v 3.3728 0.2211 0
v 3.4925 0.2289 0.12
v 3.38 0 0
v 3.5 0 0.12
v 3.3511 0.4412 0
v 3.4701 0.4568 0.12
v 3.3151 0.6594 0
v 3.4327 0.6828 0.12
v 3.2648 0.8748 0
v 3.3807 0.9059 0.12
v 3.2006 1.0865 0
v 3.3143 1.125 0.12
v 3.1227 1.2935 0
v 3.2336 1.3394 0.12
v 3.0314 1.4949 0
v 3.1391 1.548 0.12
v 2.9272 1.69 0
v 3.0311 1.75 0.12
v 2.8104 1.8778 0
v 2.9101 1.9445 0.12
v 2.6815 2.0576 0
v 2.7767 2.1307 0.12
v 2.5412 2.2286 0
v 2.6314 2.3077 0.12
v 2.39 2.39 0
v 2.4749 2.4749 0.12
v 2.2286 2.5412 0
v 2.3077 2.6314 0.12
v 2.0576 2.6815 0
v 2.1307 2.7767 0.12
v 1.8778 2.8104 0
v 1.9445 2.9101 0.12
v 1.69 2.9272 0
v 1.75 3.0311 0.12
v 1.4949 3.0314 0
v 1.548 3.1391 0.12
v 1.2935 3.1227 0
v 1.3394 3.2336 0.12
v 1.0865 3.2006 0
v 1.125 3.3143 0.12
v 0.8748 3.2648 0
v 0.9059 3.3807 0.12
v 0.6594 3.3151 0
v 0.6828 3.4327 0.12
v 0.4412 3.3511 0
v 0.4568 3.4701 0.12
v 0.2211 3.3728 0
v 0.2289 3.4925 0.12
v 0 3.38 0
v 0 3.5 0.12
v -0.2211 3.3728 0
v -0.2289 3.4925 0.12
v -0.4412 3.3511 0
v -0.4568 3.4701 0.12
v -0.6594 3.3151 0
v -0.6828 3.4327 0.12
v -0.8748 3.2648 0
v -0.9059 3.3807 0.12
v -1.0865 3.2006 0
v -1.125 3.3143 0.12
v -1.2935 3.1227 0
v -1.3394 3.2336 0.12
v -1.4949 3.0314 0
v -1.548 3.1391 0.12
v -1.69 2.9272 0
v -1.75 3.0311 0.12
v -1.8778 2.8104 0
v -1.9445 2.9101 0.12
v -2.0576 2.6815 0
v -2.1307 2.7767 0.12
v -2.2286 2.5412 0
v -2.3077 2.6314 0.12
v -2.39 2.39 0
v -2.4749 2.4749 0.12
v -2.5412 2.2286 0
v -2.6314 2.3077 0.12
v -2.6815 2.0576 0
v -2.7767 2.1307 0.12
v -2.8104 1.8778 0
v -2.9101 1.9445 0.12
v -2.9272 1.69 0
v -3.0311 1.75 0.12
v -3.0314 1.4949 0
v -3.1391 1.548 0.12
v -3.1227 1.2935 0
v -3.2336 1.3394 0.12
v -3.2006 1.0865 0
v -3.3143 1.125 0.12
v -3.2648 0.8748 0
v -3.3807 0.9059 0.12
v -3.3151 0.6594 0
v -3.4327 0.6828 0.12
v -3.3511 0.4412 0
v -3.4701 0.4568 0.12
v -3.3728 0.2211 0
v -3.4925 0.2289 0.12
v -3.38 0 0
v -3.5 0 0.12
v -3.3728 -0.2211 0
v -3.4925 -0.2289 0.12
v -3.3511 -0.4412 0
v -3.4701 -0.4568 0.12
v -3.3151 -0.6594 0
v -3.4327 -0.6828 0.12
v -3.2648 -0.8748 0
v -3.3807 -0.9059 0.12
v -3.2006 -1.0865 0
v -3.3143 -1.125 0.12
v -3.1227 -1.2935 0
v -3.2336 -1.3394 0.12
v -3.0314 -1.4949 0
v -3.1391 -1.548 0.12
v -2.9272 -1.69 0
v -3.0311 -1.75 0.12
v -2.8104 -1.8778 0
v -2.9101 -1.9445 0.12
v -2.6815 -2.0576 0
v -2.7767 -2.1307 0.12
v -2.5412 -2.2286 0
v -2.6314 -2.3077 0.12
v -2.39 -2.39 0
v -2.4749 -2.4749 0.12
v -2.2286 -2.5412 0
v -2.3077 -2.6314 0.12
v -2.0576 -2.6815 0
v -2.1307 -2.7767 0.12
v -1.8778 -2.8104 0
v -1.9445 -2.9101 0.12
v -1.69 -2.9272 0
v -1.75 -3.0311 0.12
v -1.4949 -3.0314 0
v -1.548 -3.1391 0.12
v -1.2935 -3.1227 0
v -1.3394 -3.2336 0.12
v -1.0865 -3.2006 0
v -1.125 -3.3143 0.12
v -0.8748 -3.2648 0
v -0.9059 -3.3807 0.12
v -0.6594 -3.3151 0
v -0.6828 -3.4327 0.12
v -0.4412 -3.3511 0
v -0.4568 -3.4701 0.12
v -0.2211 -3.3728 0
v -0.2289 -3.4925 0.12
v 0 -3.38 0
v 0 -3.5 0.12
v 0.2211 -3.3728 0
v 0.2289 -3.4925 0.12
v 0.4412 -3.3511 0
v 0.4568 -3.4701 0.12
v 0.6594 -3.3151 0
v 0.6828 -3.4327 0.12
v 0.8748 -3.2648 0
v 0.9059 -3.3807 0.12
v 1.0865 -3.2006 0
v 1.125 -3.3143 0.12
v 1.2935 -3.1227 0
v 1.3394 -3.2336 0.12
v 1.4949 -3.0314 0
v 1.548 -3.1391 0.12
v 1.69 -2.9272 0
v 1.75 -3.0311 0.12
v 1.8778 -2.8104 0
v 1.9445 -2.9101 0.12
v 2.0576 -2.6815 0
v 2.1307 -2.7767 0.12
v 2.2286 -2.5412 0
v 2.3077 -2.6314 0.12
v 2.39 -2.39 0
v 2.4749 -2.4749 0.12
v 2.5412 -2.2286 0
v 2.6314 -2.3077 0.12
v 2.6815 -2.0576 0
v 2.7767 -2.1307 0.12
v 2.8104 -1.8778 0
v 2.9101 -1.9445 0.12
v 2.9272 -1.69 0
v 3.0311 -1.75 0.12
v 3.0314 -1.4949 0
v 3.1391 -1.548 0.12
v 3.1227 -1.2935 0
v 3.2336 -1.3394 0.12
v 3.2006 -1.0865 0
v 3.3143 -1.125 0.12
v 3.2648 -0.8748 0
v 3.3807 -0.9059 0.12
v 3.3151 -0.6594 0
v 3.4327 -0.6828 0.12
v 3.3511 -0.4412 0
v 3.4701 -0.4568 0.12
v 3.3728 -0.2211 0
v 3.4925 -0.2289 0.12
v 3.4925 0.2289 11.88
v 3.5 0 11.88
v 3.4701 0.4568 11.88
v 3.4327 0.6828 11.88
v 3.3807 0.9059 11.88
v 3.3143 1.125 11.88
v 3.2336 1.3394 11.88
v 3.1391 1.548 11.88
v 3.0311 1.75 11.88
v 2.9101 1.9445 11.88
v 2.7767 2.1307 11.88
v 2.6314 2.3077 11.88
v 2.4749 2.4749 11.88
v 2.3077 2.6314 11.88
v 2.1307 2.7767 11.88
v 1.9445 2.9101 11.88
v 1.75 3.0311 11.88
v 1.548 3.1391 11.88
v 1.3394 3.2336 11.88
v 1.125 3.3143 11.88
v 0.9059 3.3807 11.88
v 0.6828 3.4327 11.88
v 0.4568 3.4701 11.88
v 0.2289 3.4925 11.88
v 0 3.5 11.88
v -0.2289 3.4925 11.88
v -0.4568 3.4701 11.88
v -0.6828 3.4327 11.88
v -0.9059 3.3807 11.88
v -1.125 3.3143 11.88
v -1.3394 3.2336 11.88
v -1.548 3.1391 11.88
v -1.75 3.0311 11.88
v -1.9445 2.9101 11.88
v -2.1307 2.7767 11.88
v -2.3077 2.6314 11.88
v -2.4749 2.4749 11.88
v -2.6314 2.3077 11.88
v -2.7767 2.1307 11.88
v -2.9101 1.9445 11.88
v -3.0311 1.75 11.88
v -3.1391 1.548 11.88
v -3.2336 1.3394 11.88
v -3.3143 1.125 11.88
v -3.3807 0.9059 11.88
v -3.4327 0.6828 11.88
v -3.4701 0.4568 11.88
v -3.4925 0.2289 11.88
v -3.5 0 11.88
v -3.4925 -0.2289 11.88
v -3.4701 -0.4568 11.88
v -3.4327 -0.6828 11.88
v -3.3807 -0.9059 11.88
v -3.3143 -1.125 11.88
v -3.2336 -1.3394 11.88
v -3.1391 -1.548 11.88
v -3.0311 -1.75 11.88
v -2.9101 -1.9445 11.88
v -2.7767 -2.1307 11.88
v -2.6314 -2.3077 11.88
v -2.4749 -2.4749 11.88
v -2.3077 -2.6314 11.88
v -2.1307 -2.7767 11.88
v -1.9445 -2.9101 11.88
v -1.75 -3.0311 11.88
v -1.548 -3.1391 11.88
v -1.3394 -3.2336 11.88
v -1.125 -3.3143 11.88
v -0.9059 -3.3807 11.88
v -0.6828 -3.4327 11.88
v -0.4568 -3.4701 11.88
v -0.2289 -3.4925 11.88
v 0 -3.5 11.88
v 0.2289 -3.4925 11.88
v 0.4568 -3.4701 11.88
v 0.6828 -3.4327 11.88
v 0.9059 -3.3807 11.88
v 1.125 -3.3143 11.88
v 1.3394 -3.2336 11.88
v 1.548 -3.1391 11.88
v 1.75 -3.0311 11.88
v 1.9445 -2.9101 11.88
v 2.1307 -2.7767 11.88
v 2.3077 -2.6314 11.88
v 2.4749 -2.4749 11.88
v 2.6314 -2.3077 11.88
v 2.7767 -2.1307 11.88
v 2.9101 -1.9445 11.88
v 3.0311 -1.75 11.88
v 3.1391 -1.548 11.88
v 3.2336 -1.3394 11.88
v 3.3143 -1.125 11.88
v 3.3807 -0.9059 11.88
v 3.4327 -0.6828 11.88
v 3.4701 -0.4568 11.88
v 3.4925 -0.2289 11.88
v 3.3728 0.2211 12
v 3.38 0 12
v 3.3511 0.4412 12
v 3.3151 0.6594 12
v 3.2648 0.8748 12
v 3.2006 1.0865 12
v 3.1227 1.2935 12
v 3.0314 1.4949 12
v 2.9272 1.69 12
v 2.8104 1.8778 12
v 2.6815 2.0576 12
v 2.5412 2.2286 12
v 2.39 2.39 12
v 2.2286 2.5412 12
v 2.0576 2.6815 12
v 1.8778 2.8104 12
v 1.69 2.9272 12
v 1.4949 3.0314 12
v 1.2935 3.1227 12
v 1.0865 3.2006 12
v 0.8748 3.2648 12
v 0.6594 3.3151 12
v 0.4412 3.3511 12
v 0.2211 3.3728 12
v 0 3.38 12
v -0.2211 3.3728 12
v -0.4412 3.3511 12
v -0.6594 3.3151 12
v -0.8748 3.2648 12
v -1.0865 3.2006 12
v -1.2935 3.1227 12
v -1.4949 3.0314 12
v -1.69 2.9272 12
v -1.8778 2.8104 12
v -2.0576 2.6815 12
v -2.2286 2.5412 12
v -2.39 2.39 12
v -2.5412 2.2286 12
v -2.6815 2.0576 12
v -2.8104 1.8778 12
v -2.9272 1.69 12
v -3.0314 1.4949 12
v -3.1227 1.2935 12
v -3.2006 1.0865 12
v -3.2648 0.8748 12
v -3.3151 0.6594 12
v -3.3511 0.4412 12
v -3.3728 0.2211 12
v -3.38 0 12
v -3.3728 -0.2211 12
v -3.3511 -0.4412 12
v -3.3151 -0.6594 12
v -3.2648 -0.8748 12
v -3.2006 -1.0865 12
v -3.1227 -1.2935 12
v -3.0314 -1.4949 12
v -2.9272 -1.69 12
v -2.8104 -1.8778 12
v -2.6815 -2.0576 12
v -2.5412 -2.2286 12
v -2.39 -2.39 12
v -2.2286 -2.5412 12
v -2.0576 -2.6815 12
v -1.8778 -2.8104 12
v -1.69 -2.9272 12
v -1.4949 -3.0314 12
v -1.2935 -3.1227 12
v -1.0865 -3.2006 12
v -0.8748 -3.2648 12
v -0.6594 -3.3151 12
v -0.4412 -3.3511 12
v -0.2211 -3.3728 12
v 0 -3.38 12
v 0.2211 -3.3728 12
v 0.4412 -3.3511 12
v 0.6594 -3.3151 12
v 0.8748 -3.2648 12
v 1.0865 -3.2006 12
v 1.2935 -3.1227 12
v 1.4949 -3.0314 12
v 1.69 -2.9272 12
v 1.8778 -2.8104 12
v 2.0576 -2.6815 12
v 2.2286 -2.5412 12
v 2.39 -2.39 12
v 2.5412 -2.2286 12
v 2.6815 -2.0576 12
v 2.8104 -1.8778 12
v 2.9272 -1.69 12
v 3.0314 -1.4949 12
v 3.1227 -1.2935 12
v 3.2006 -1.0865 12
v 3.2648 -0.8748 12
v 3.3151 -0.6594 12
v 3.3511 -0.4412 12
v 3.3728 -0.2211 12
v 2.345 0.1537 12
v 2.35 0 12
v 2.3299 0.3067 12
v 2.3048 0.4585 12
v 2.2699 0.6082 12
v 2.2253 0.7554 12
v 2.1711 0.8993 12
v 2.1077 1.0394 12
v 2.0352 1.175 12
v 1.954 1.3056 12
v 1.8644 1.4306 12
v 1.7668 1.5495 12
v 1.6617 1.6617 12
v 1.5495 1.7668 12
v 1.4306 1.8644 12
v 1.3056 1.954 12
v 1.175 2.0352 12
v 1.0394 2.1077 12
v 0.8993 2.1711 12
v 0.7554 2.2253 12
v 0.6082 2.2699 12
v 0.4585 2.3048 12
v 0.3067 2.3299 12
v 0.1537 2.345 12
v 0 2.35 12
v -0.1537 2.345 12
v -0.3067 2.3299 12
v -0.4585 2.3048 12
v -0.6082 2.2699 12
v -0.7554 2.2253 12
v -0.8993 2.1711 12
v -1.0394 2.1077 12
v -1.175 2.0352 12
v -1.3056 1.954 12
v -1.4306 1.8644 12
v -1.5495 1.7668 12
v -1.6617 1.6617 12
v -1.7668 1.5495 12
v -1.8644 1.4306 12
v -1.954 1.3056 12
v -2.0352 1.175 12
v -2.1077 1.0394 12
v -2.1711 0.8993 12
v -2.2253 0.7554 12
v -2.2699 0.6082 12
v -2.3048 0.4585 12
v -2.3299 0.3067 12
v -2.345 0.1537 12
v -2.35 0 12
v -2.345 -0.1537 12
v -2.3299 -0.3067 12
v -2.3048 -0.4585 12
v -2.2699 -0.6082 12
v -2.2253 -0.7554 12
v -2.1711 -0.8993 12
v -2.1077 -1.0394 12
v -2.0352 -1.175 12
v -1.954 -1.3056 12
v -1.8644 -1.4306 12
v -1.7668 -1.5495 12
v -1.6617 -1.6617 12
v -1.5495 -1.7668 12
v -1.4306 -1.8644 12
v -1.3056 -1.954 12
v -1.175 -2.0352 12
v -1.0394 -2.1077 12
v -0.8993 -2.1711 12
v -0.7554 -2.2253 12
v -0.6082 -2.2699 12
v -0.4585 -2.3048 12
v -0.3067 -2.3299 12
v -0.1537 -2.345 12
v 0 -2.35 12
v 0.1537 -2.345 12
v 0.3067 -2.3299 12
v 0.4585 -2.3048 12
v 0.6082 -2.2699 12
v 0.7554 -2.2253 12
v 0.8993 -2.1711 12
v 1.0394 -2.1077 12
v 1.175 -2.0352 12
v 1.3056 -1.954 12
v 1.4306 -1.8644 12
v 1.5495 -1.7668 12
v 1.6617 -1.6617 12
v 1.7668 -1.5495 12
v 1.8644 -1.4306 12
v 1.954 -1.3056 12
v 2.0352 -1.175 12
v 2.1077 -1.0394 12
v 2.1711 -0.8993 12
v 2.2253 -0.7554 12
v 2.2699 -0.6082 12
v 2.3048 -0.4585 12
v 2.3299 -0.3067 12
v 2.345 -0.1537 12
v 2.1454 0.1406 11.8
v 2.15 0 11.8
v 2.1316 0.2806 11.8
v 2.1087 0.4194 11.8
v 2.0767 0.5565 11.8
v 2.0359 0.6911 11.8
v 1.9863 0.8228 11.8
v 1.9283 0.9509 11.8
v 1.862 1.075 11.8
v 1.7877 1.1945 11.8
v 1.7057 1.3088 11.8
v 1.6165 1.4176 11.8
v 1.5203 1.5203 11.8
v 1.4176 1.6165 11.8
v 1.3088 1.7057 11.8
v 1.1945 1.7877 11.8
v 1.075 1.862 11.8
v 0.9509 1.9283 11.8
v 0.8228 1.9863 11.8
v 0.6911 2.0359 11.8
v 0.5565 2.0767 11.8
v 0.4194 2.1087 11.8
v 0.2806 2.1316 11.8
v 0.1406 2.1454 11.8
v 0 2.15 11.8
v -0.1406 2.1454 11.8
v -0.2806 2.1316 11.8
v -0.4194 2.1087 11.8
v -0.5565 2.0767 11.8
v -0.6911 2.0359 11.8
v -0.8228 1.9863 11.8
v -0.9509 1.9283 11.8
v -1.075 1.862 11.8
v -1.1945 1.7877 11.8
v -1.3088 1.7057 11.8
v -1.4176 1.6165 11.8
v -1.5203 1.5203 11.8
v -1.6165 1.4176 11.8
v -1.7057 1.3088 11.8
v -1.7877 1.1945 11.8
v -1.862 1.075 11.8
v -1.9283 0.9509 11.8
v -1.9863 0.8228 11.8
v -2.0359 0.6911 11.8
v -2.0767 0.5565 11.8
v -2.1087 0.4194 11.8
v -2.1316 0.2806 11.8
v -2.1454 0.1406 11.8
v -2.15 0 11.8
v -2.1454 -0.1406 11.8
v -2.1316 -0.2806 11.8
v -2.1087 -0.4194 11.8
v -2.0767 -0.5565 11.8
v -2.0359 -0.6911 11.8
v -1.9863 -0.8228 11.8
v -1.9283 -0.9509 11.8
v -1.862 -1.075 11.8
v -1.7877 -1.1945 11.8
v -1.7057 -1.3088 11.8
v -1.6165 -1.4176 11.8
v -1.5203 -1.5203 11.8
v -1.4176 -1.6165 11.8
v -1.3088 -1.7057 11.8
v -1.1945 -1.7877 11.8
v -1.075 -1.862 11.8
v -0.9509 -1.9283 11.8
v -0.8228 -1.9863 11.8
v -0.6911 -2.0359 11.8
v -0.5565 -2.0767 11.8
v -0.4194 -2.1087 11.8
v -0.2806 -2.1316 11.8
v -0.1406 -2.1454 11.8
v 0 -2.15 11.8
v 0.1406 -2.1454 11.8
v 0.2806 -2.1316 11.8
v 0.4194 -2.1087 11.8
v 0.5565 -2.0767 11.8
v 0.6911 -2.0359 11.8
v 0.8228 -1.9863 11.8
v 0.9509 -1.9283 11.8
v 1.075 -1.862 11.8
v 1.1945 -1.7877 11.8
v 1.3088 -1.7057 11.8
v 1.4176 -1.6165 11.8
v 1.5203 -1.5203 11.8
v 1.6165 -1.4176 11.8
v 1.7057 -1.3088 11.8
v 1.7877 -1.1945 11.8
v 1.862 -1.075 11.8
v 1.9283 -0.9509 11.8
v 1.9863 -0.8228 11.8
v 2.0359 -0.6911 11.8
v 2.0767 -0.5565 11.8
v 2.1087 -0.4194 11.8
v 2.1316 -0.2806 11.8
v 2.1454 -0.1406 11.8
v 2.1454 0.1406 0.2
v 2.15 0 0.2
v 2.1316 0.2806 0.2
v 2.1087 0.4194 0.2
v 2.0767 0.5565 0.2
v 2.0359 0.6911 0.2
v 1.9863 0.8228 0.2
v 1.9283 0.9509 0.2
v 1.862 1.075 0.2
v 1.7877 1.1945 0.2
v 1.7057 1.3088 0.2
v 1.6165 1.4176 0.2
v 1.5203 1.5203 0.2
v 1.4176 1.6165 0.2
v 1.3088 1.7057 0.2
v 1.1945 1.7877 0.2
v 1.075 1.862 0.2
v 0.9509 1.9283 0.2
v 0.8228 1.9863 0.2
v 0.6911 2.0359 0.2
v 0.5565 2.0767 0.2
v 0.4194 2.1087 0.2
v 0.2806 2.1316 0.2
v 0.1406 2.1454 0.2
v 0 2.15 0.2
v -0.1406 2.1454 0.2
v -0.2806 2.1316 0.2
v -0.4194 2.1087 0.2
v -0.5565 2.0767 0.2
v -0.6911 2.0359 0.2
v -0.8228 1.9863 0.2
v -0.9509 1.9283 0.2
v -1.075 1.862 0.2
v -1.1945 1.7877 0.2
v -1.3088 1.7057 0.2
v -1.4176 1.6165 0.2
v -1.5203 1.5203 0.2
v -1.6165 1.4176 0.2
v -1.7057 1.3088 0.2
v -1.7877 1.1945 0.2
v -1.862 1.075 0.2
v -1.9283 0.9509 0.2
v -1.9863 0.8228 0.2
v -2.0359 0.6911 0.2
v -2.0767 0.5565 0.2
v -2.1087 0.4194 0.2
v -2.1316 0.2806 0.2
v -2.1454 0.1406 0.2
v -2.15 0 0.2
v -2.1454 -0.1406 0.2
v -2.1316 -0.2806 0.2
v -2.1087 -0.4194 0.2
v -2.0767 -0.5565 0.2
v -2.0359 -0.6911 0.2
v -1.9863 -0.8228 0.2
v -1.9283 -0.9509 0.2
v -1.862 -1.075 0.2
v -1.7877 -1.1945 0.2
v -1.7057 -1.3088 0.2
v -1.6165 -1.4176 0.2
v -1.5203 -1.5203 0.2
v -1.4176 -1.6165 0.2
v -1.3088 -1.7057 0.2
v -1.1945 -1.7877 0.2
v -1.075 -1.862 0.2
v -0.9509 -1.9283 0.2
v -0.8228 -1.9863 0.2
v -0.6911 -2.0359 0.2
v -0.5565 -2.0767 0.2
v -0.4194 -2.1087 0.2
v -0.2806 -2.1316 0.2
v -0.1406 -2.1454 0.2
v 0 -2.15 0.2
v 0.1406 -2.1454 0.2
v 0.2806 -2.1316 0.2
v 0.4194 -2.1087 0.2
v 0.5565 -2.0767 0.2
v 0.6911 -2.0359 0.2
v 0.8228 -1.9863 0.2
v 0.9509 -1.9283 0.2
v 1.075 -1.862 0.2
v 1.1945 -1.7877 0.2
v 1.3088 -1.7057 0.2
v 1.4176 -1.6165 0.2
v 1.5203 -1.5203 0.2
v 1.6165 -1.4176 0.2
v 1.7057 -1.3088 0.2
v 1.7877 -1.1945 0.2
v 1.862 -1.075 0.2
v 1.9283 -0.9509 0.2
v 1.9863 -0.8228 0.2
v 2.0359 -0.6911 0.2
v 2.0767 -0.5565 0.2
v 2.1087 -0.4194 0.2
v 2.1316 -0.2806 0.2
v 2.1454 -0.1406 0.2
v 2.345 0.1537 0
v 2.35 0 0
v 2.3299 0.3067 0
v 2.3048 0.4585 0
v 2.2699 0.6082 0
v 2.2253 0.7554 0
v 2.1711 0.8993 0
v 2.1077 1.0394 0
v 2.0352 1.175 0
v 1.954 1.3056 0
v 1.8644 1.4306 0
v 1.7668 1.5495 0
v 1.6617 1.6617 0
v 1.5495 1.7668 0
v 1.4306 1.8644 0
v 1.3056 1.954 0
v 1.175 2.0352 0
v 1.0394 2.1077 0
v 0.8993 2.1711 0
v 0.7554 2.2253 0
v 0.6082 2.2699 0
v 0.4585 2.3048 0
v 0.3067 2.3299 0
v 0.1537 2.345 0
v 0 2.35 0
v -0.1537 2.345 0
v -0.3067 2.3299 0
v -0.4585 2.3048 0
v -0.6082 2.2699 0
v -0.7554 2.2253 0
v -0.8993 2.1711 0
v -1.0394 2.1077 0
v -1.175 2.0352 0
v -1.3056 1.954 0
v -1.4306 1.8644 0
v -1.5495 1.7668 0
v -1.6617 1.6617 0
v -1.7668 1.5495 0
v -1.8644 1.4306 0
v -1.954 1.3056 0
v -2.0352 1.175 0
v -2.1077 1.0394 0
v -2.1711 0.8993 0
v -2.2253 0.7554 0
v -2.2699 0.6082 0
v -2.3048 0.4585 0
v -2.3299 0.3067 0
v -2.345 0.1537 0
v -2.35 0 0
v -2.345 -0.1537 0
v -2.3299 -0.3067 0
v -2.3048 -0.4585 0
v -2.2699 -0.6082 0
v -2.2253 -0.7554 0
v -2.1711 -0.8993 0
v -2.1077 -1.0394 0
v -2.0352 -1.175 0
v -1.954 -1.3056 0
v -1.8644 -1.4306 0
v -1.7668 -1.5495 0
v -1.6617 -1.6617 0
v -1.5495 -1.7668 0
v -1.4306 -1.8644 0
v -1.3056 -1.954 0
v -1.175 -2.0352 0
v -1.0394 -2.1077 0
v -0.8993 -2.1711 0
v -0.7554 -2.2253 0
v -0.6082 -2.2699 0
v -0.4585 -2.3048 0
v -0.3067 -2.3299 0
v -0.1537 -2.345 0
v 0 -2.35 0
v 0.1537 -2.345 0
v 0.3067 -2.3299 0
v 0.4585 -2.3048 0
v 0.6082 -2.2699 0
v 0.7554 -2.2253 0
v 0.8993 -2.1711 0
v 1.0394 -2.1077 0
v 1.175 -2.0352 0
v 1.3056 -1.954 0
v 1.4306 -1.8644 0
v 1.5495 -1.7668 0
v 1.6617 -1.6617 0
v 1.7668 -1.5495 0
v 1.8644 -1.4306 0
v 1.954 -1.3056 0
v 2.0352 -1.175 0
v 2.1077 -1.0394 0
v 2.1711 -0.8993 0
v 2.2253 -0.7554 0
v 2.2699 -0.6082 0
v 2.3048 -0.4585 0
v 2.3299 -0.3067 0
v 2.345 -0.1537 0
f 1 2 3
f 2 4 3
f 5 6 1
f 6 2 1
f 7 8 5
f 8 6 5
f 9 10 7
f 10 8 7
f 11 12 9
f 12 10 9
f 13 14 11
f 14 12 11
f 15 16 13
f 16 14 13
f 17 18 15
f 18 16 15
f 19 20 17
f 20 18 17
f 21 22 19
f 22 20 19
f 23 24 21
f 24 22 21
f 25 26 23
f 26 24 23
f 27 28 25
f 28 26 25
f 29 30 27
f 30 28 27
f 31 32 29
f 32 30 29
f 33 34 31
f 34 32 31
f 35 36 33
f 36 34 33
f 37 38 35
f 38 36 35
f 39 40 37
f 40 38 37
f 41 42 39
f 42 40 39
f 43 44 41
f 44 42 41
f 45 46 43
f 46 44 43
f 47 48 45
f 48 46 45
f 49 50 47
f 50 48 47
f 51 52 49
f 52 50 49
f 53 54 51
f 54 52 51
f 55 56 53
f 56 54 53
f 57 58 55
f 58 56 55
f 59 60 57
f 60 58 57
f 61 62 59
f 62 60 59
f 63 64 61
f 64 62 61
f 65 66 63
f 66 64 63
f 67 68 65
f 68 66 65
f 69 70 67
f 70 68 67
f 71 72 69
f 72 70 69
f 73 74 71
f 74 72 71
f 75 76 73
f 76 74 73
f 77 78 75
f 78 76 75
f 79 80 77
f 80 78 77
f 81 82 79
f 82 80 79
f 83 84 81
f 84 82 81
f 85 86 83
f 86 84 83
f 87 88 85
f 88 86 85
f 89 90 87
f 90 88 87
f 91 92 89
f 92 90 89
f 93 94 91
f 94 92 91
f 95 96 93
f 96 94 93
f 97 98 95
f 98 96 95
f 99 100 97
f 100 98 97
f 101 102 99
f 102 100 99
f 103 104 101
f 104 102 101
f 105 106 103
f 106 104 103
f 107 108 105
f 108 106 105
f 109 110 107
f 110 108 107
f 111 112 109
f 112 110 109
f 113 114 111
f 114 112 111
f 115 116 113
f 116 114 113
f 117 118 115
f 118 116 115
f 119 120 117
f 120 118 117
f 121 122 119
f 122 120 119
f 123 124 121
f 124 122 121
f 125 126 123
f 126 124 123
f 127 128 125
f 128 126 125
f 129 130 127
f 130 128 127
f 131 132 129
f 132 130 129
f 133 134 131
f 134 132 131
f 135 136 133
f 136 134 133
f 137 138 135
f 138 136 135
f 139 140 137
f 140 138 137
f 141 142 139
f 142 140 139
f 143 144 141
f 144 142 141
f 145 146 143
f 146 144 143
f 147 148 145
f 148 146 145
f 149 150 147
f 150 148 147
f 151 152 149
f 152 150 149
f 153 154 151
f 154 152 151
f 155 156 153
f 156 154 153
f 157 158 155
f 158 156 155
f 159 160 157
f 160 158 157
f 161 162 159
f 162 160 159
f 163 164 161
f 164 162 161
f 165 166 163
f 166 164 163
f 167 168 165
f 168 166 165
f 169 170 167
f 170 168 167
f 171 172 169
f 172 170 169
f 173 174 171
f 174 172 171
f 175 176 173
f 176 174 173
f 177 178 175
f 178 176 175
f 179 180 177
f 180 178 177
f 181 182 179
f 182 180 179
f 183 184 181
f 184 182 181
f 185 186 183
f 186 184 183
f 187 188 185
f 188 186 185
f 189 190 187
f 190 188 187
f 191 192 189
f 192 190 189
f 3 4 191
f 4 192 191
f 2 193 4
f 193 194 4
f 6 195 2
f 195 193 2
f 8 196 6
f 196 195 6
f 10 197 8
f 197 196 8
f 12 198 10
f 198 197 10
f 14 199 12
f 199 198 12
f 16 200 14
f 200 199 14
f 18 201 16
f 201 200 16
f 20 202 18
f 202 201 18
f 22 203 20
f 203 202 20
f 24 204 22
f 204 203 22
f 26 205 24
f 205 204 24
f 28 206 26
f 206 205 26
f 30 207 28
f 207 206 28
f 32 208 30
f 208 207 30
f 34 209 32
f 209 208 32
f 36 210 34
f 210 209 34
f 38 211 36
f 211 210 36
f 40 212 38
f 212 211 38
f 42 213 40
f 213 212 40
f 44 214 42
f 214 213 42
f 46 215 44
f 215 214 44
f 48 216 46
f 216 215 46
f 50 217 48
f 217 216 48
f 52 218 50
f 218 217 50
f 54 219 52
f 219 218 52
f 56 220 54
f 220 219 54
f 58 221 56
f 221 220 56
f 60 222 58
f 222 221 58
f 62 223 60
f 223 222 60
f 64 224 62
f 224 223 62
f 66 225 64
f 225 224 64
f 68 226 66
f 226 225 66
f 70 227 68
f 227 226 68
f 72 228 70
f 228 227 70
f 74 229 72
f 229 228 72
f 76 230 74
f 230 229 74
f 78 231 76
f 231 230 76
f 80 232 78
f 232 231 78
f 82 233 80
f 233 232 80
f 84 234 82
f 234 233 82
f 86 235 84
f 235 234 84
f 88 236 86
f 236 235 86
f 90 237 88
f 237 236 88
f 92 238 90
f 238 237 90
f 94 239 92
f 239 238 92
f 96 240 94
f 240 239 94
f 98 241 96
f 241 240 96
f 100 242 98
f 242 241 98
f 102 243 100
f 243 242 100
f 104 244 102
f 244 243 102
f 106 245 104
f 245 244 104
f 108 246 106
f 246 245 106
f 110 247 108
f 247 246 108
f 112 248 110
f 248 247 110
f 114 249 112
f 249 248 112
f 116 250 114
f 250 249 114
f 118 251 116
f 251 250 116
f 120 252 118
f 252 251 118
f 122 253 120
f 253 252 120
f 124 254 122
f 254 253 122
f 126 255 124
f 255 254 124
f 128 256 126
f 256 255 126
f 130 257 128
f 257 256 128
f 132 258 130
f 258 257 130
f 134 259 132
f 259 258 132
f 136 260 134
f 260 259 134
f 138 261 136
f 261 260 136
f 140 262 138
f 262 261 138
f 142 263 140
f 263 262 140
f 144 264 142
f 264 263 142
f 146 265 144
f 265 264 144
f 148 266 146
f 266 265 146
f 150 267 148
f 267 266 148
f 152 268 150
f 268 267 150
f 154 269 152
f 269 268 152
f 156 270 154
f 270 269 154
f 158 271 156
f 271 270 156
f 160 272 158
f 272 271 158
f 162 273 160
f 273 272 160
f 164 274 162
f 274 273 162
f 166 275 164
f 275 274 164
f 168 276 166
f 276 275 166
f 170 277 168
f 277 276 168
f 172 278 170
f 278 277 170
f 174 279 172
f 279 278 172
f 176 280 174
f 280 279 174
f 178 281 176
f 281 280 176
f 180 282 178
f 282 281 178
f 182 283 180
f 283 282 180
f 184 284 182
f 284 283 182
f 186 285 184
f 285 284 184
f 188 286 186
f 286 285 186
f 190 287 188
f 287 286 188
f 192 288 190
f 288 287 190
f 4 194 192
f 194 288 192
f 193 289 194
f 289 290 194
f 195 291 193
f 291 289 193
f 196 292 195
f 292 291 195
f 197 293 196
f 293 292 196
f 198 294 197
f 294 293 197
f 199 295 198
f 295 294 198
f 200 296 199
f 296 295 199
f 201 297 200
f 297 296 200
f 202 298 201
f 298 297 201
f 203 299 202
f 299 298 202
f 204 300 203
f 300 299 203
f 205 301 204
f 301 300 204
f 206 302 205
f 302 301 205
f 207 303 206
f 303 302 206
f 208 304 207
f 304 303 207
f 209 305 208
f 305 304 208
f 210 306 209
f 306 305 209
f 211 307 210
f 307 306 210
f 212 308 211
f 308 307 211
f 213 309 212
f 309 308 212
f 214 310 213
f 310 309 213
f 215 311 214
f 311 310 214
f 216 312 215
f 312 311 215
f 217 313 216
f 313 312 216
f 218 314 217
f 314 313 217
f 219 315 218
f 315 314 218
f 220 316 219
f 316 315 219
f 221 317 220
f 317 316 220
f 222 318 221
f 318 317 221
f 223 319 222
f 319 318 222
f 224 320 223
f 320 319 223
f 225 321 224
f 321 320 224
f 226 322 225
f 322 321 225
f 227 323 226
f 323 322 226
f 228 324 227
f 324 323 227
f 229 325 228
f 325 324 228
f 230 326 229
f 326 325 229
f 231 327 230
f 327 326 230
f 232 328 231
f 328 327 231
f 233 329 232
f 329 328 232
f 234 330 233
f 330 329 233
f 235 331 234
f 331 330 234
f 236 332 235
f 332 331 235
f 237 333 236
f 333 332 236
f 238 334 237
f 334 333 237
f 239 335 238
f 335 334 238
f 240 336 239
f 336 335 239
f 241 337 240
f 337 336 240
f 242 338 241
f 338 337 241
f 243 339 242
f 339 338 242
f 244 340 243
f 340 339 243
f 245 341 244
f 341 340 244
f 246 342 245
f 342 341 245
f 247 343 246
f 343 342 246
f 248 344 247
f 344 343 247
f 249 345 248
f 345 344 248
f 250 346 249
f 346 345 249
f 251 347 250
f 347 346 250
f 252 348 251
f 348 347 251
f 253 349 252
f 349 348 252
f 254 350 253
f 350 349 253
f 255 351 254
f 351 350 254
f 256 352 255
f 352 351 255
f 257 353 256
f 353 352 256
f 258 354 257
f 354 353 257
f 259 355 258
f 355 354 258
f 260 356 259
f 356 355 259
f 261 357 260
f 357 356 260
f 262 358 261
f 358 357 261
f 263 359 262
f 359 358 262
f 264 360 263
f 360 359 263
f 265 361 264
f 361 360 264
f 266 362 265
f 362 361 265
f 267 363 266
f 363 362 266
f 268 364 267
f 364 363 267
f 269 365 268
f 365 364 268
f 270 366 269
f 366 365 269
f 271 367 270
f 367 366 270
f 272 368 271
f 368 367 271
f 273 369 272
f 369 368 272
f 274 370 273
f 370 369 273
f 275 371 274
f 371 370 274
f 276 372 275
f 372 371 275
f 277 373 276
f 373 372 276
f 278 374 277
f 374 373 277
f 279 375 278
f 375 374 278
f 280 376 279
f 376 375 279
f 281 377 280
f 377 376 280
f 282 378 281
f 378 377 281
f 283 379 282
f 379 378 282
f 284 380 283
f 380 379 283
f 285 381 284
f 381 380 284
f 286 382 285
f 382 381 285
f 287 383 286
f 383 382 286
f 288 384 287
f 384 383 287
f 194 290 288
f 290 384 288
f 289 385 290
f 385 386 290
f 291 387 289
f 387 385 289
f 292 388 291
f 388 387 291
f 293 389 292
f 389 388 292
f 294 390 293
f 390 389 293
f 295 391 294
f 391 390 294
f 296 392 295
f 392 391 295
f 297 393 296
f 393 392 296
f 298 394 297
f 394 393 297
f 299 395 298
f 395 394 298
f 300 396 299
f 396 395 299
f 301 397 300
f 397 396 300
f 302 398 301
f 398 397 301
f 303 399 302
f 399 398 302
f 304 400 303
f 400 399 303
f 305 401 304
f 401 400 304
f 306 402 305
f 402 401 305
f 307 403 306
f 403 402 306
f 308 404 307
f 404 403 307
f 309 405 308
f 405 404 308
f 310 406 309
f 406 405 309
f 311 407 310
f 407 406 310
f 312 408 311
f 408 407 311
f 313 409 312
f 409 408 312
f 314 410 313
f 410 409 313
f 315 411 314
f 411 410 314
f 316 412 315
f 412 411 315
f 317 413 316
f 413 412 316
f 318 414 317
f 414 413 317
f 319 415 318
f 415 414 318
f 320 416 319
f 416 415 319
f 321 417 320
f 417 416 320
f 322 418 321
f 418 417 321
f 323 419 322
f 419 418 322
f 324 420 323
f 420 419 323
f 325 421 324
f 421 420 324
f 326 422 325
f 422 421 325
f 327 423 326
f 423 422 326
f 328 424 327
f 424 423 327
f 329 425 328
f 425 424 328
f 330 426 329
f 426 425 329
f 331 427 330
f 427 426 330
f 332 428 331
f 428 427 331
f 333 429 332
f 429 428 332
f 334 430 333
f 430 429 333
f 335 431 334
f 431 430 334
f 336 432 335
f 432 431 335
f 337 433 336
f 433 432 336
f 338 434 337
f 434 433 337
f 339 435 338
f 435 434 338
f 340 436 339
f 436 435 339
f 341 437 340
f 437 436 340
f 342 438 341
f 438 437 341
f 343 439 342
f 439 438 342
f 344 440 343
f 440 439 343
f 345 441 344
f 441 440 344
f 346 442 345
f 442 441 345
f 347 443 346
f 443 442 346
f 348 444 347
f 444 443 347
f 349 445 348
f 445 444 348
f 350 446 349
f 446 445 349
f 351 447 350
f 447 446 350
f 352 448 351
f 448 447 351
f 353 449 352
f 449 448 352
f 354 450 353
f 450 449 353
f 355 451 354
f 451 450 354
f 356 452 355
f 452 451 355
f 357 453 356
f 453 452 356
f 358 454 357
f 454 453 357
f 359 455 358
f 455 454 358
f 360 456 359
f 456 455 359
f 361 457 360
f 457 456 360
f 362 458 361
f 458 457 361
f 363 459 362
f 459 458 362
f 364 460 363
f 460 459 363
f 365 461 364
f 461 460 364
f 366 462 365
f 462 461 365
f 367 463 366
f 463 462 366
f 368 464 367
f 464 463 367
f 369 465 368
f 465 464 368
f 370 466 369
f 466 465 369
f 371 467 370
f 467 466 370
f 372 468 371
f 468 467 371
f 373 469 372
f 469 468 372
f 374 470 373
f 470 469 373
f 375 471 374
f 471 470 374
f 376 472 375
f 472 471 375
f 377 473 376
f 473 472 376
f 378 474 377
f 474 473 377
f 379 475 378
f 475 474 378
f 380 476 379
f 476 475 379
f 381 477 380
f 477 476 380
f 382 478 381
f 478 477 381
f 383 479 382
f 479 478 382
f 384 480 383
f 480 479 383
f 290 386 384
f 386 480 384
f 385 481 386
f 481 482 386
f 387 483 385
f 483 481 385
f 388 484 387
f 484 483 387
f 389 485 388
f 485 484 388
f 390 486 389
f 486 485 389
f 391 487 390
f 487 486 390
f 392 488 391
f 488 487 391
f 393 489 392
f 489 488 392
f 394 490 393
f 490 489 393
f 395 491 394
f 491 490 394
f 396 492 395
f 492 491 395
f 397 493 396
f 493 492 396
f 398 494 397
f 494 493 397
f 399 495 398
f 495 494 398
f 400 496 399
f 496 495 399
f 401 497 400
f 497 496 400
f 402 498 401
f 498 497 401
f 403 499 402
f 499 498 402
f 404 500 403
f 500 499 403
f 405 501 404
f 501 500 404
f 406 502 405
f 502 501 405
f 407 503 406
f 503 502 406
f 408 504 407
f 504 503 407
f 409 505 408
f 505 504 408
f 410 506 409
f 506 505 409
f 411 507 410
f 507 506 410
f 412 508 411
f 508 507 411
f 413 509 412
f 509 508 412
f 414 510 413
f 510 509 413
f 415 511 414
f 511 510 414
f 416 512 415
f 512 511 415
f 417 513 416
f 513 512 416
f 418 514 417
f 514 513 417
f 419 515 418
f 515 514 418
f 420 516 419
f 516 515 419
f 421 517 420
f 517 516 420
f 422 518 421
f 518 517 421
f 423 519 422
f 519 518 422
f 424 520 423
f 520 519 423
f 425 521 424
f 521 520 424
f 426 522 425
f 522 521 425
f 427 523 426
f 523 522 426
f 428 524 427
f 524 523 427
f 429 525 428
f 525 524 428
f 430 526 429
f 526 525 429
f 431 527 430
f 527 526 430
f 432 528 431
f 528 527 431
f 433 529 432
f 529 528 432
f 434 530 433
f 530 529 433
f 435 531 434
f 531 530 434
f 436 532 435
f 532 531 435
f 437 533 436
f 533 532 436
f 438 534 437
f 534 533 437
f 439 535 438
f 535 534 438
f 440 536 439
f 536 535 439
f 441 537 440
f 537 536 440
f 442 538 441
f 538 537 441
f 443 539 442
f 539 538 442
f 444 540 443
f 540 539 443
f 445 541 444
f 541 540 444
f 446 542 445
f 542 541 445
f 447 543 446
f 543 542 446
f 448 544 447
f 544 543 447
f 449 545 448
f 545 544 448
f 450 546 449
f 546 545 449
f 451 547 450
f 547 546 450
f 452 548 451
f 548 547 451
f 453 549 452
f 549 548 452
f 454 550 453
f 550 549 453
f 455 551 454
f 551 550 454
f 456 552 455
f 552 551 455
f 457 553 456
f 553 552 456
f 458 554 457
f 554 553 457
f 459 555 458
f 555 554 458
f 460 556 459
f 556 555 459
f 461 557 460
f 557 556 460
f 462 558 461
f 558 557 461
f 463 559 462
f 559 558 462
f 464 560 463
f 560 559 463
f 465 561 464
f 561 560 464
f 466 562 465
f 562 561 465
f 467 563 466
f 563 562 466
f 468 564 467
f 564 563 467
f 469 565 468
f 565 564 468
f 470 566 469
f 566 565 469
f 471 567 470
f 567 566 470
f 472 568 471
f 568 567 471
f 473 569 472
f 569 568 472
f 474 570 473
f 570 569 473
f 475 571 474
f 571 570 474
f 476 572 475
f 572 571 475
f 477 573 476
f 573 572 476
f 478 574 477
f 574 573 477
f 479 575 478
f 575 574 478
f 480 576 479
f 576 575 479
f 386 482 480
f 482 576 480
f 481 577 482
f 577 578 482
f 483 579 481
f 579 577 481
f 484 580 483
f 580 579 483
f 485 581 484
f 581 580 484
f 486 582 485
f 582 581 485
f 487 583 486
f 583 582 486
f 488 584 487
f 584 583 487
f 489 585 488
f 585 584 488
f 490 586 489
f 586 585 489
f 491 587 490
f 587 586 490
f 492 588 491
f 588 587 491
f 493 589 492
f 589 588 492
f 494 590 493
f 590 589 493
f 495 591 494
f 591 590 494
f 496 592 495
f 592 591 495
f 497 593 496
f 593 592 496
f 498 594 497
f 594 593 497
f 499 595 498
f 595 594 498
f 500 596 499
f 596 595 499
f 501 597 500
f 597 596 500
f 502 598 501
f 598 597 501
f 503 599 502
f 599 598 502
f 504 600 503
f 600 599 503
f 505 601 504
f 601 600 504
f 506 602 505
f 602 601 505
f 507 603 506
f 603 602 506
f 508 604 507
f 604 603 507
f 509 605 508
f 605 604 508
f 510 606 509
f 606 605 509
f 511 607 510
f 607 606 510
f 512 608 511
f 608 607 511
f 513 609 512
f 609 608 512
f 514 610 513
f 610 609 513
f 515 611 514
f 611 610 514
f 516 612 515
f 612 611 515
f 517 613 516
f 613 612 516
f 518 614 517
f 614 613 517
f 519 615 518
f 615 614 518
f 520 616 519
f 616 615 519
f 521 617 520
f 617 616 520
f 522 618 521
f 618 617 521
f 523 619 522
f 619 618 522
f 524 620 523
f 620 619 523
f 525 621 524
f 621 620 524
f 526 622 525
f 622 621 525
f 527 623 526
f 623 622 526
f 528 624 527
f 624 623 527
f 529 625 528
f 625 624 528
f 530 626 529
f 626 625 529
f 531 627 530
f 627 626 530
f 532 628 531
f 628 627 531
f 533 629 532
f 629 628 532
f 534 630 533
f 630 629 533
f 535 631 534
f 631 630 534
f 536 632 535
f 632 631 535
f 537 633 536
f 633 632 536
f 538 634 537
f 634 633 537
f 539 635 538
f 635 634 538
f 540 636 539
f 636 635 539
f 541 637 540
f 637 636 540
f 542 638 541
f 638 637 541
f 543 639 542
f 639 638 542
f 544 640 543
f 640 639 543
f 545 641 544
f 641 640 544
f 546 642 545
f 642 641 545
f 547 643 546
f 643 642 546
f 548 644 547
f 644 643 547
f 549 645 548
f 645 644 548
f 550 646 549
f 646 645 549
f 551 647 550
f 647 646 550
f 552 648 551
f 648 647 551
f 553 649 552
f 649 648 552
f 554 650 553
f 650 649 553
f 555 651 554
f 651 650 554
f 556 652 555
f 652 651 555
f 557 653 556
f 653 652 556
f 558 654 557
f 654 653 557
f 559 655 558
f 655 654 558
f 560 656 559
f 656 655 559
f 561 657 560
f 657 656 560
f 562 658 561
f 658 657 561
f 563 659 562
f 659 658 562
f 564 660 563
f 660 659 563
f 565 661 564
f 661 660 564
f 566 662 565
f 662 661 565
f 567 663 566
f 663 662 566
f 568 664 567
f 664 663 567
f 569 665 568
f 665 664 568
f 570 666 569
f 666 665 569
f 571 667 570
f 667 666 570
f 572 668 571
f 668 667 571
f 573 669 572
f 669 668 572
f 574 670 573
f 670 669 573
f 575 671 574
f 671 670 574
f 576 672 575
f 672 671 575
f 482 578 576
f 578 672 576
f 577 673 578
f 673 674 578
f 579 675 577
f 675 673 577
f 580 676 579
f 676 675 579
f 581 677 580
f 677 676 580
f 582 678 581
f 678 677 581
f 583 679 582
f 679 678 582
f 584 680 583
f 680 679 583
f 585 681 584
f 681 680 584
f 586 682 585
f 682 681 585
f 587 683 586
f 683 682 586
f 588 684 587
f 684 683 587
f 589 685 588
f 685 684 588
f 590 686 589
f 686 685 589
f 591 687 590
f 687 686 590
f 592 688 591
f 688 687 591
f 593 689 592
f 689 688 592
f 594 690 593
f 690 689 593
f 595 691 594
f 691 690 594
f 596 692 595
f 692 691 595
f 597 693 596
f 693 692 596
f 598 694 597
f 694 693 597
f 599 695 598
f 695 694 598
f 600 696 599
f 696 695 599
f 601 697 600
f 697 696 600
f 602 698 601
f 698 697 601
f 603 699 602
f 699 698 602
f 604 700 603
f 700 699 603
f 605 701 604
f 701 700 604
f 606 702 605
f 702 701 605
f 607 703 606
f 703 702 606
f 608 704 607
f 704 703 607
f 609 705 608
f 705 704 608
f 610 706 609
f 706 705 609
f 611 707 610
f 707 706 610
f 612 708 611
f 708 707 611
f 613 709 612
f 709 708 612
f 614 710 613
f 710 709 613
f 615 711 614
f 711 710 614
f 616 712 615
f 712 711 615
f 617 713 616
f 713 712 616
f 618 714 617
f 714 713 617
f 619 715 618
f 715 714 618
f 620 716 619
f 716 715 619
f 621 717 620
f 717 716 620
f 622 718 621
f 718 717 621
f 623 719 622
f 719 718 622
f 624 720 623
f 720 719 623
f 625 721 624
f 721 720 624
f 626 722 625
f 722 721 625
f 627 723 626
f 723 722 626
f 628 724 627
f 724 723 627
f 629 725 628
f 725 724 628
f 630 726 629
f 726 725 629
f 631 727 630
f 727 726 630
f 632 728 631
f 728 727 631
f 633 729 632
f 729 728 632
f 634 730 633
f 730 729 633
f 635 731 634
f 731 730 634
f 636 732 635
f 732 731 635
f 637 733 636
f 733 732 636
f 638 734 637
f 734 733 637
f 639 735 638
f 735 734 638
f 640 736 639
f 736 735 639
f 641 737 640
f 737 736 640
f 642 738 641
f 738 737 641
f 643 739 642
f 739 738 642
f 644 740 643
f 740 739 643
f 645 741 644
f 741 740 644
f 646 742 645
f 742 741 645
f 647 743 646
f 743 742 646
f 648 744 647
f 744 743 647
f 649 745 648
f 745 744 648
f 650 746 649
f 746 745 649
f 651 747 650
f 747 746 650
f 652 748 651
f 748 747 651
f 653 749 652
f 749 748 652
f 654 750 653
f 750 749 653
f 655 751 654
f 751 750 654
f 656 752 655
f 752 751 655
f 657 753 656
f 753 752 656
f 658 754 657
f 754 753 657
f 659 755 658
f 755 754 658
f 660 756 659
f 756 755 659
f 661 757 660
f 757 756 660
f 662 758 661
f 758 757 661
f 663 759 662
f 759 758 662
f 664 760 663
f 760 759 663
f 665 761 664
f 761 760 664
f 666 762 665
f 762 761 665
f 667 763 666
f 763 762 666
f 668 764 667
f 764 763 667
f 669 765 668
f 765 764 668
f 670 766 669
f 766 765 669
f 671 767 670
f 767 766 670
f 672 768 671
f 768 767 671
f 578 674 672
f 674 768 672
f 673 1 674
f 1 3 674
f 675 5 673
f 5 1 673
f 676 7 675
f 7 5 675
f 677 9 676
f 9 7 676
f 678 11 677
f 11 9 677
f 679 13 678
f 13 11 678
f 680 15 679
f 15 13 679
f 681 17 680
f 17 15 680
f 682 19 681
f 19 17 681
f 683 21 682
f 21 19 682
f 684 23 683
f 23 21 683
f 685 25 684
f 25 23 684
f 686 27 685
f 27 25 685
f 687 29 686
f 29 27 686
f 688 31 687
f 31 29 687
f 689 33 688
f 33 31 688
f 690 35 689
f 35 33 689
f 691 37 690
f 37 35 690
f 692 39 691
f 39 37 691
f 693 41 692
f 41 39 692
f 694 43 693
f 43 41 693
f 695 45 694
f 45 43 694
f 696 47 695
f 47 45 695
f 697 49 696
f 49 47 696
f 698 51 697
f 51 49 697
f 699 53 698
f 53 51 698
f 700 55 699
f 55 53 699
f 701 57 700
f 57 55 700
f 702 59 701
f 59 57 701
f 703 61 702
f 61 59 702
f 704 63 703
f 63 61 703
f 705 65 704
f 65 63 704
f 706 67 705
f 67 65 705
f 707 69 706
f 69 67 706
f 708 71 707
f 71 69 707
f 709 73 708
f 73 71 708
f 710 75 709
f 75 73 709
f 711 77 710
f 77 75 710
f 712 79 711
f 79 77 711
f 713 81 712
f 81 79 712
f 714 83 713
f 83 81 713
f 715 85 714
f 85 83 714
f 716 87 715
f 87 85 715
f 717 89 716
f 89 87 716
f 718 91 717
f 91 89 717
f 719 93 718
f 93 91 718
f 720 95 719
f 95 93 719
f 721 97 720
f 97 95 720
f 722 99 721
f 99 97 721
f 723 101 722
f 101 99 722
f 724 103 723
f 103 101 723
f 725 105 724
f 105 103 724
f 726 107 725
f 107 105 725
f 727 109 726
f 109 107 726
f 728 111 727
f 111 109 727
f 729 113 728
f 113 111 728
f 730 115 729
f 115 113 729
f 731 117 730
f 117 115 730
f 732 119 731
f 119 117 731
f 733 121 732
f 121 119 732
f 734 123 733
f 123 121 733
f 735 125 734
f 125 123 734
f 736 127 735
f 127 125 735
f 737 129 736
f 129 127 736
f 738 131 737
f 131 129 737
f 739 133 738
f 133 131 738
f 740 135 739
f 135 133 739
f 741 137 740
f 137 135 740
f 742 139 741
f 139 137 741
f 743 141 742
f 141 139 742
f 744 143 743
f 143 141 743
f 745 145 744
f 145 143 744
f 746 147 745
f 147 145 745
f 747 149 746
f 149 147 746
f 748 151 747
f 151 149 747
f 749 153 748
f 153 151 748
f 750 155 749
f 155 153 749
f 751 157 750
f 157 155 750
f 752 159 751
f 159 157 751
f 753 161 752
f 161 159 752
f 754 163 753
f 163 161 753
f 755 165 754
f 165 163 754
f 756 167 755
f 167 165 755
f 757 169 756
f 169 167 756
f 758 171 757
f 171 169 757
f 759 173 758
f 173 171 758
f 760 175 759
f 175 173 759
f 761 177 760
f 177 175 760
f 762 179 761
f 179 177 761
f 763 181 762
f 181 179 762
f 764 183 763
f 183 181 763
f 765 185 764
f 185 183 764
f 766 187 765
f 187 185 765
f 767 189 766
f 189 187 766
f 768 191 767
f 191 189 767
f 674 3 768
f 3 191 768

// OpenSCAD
// OOMP generic catalogue model; units: mm.
// Stud length is additional to body depth. Tapping depths are model assumptions.
variant = "full"; // [full, display]
family = "spacer";
connection_type = "plain";
depth_mm = 12;
stud_length_mm = 0;
tapped_depth_mm = 0;
bore_mm = 4.3;
outer_diameter_mm = 7;
across_flats_mm = 6;
thread_nominal_diameter_mm = 3;
thread_pitch_mm = 0.5;
edge_chamfer_mm = 0.12;
mouth_chamfer_mm = 0.2;
angular_segments = 96;
samples_per_pitch = 16;

// Boundary travels up the outside, then down any tapped/plain bore.
// Equal-height rings at shoulders form the annular shoulder faces.
n = angular_segments;
threaded = family == "standoff";
has_stud = connection_type == "stud_to_tapped" || connection_type == "stud_to_stud";
two_studs = connection_type == "stud_to_stud";
through = !threaded || connection_type == "tapped_to_tapped";
pitch = thread_pitch_mm;
diameter = threaded ? thread_nominal_diameter_mm : bore_mm;
minor = diameter - 5*sqrt(3)*pitch/8;
transition = mouth_chamfer_mm + (threaded ? 5*sqrt(3)*pitch/16 : 0);
tip_chamfer = mouth_chamfer_mm + 17*sqrt(3)*pitch/48;
function sorted(v) = len(v)<=1 ? v : let(p=v[0])
    concat(sorted([for(x=v) if(x<p-1e-8) x]), [p], sorted([for(x=v) if(x>p+1e-8) x]));
function reverse(v) = [for(i=[len(v)-1:-1:0]) v[i]];
function theta(i) = i*360/n;
function fract(x) = x-floor(x);
function phase_distance(i,z) = abs(fract(z/pitch-theta(i)/360+0.5)-0.5);
function thread_r(i,z) = minor/2 + min(5*sqrt(3)*pitch/16,
    max(0,(phase_distance(i,z)-0.125)*pitch*sqrt(3)));
function stud_r(i,z,tip) = min(diameter/2 - (variant=="full" ?
    min(17*sqrt(3)*pitch/48,max(0,(phase_distance(i,z)-0.0625)*pitch*sqrt(3))) : 0),
    diameter/2-tip_chamfer+abs(z-tip));
function body_r(i,z) = (threaded ? across_flats_mm/2/cos(theta(i)%60-30) : outer_diameter_mm/2)
    - max(0,edge_chamfer_mm-min(z,depth_mm-z));
function bore_r(i,z) = max(threaded ? (variant=="full" ? thread_r(i,z) : minor/2) : diameter/2,
    diameter/2+mouth_chamfer_mm-(through ? min(z,depth_mm-z) : depth_mm-z));
function stud_z(a,b,tip) = let(count=variant=="full" ? ceil(stud_length_mm/pitch*samples_per_pitch) : 1)
    sorted(concat([for(i=[0:count]) a+(b-a)*i/count], [tip==a ? tip+tip_chamfer : tip-tip_chamfer]));
body_z = sorted([0,edge_chamfer_mm,depth_mm-edge_chamfer_mm,depth_mm]);
low = through ? 0 : depth_mm-tapped_depth_mm;
count = threaded && variant=="full" ? ceil((depth_mm-low)/pitch*samples_per_pitch) : 1;
bore_z = two_studs ? [] : reverse(sorted(concat(
    [for(i=[0:count]) low+(depth_mm-low)*i/count],
    [depth_mm-mouth_chamfer_mm,depth_mm-transition],
    through ? [mouth_chamfer_mm,transition] : [])));
// Ring descriptors: [height, kind, tip]. Kind: 0 body, 1 stud, 2 bore.
rings = concat(
    has_stud ? [for(z=stud_z(-stud_length_mm,0,-stud_length_mm)) [z,1,-stud_length_mm]] : [],
    [for(z=body_z) [z,0,0]],
    two_studs ? [for(z=stud_z(depth_mm,depth_mm+stud_length_mm,depth_mm+stud_length_mm)) [z,1,depth_mm+stud_length_mm]] : [],
    [for(z=bore_z) [z,2,0]]);
function radius(i,ring) = ring[1]==0 ? body_r(i,ring[0]) :
    ring[1]==1 ? stud_r(i,ring[0],ring[2]) : bore_r(i,ring[0]);
points = concat([for(ring=rings) for(i=[0:n-1])
    [radius(i,ring)*cos(theta(i)),radius(i,ring)*sin(theta(i)),ring[0]]],
    through ? [] : [[0,0,rings[0][0]],[0,0,rings[len(rings)-1][0]]]);
center = len(rings)*n;
last = (len(rings)-1)*n;
// OpenSCAD winding is opposite to STL winding.
faces = concat(
    [for(j=[0:len(rings)-(through ? 1 : 2)]) for(i=[0:n-1]) each
        let(a=j*n+i,b=j*n+(i+1)%n,c=((j+1)%len(rings))*n+(i+1)%n,d=((j+1)%len(rings))*n+i)
        [[a,c,b],[a,d,c]]],
    through ? [] : [for(i=[0:n-1]) each let(k=(i+1)%n)
        [[center,i,k],[center+1,last+k,last+i]]]);
assert(family=="spacer" || family=="standoff");
assert(!threaded || connection_type=="tapped_to_tapped" || has_stud);
assert(depth_mm>0 && diameter>0 && pitch>0);
assert(variant=="full" || variant=="display");
assert(n>=24 && n%12==0 && samples_per_pitch>=8);
assert(mouth_chamfer_mm>0 && mouth_chamfer_mm<depth_mm/2);
assert(edge_chamfer_mm>=0 && edge_chamfer_mm<depth_mm/2);
assert(diameter+4*max(mouth_chamfer_mm,edge_chamfer_mm) < (threaded ? across_flats_mm : outer_diameter_mm));
assert(!has_stud || stud_length_mm>2*mouth_chamfer_mm);
assert(!through || !threaded || 2*transition<depth_mm);
assert(connection_type!="stud_to_tapped" || (tapped_depth_mm>transition && tapped_depth_mm<depth_mm));
color([0.86,0.85,0.81]) polyhedron(points=points,faces=faces,convexity=20);
